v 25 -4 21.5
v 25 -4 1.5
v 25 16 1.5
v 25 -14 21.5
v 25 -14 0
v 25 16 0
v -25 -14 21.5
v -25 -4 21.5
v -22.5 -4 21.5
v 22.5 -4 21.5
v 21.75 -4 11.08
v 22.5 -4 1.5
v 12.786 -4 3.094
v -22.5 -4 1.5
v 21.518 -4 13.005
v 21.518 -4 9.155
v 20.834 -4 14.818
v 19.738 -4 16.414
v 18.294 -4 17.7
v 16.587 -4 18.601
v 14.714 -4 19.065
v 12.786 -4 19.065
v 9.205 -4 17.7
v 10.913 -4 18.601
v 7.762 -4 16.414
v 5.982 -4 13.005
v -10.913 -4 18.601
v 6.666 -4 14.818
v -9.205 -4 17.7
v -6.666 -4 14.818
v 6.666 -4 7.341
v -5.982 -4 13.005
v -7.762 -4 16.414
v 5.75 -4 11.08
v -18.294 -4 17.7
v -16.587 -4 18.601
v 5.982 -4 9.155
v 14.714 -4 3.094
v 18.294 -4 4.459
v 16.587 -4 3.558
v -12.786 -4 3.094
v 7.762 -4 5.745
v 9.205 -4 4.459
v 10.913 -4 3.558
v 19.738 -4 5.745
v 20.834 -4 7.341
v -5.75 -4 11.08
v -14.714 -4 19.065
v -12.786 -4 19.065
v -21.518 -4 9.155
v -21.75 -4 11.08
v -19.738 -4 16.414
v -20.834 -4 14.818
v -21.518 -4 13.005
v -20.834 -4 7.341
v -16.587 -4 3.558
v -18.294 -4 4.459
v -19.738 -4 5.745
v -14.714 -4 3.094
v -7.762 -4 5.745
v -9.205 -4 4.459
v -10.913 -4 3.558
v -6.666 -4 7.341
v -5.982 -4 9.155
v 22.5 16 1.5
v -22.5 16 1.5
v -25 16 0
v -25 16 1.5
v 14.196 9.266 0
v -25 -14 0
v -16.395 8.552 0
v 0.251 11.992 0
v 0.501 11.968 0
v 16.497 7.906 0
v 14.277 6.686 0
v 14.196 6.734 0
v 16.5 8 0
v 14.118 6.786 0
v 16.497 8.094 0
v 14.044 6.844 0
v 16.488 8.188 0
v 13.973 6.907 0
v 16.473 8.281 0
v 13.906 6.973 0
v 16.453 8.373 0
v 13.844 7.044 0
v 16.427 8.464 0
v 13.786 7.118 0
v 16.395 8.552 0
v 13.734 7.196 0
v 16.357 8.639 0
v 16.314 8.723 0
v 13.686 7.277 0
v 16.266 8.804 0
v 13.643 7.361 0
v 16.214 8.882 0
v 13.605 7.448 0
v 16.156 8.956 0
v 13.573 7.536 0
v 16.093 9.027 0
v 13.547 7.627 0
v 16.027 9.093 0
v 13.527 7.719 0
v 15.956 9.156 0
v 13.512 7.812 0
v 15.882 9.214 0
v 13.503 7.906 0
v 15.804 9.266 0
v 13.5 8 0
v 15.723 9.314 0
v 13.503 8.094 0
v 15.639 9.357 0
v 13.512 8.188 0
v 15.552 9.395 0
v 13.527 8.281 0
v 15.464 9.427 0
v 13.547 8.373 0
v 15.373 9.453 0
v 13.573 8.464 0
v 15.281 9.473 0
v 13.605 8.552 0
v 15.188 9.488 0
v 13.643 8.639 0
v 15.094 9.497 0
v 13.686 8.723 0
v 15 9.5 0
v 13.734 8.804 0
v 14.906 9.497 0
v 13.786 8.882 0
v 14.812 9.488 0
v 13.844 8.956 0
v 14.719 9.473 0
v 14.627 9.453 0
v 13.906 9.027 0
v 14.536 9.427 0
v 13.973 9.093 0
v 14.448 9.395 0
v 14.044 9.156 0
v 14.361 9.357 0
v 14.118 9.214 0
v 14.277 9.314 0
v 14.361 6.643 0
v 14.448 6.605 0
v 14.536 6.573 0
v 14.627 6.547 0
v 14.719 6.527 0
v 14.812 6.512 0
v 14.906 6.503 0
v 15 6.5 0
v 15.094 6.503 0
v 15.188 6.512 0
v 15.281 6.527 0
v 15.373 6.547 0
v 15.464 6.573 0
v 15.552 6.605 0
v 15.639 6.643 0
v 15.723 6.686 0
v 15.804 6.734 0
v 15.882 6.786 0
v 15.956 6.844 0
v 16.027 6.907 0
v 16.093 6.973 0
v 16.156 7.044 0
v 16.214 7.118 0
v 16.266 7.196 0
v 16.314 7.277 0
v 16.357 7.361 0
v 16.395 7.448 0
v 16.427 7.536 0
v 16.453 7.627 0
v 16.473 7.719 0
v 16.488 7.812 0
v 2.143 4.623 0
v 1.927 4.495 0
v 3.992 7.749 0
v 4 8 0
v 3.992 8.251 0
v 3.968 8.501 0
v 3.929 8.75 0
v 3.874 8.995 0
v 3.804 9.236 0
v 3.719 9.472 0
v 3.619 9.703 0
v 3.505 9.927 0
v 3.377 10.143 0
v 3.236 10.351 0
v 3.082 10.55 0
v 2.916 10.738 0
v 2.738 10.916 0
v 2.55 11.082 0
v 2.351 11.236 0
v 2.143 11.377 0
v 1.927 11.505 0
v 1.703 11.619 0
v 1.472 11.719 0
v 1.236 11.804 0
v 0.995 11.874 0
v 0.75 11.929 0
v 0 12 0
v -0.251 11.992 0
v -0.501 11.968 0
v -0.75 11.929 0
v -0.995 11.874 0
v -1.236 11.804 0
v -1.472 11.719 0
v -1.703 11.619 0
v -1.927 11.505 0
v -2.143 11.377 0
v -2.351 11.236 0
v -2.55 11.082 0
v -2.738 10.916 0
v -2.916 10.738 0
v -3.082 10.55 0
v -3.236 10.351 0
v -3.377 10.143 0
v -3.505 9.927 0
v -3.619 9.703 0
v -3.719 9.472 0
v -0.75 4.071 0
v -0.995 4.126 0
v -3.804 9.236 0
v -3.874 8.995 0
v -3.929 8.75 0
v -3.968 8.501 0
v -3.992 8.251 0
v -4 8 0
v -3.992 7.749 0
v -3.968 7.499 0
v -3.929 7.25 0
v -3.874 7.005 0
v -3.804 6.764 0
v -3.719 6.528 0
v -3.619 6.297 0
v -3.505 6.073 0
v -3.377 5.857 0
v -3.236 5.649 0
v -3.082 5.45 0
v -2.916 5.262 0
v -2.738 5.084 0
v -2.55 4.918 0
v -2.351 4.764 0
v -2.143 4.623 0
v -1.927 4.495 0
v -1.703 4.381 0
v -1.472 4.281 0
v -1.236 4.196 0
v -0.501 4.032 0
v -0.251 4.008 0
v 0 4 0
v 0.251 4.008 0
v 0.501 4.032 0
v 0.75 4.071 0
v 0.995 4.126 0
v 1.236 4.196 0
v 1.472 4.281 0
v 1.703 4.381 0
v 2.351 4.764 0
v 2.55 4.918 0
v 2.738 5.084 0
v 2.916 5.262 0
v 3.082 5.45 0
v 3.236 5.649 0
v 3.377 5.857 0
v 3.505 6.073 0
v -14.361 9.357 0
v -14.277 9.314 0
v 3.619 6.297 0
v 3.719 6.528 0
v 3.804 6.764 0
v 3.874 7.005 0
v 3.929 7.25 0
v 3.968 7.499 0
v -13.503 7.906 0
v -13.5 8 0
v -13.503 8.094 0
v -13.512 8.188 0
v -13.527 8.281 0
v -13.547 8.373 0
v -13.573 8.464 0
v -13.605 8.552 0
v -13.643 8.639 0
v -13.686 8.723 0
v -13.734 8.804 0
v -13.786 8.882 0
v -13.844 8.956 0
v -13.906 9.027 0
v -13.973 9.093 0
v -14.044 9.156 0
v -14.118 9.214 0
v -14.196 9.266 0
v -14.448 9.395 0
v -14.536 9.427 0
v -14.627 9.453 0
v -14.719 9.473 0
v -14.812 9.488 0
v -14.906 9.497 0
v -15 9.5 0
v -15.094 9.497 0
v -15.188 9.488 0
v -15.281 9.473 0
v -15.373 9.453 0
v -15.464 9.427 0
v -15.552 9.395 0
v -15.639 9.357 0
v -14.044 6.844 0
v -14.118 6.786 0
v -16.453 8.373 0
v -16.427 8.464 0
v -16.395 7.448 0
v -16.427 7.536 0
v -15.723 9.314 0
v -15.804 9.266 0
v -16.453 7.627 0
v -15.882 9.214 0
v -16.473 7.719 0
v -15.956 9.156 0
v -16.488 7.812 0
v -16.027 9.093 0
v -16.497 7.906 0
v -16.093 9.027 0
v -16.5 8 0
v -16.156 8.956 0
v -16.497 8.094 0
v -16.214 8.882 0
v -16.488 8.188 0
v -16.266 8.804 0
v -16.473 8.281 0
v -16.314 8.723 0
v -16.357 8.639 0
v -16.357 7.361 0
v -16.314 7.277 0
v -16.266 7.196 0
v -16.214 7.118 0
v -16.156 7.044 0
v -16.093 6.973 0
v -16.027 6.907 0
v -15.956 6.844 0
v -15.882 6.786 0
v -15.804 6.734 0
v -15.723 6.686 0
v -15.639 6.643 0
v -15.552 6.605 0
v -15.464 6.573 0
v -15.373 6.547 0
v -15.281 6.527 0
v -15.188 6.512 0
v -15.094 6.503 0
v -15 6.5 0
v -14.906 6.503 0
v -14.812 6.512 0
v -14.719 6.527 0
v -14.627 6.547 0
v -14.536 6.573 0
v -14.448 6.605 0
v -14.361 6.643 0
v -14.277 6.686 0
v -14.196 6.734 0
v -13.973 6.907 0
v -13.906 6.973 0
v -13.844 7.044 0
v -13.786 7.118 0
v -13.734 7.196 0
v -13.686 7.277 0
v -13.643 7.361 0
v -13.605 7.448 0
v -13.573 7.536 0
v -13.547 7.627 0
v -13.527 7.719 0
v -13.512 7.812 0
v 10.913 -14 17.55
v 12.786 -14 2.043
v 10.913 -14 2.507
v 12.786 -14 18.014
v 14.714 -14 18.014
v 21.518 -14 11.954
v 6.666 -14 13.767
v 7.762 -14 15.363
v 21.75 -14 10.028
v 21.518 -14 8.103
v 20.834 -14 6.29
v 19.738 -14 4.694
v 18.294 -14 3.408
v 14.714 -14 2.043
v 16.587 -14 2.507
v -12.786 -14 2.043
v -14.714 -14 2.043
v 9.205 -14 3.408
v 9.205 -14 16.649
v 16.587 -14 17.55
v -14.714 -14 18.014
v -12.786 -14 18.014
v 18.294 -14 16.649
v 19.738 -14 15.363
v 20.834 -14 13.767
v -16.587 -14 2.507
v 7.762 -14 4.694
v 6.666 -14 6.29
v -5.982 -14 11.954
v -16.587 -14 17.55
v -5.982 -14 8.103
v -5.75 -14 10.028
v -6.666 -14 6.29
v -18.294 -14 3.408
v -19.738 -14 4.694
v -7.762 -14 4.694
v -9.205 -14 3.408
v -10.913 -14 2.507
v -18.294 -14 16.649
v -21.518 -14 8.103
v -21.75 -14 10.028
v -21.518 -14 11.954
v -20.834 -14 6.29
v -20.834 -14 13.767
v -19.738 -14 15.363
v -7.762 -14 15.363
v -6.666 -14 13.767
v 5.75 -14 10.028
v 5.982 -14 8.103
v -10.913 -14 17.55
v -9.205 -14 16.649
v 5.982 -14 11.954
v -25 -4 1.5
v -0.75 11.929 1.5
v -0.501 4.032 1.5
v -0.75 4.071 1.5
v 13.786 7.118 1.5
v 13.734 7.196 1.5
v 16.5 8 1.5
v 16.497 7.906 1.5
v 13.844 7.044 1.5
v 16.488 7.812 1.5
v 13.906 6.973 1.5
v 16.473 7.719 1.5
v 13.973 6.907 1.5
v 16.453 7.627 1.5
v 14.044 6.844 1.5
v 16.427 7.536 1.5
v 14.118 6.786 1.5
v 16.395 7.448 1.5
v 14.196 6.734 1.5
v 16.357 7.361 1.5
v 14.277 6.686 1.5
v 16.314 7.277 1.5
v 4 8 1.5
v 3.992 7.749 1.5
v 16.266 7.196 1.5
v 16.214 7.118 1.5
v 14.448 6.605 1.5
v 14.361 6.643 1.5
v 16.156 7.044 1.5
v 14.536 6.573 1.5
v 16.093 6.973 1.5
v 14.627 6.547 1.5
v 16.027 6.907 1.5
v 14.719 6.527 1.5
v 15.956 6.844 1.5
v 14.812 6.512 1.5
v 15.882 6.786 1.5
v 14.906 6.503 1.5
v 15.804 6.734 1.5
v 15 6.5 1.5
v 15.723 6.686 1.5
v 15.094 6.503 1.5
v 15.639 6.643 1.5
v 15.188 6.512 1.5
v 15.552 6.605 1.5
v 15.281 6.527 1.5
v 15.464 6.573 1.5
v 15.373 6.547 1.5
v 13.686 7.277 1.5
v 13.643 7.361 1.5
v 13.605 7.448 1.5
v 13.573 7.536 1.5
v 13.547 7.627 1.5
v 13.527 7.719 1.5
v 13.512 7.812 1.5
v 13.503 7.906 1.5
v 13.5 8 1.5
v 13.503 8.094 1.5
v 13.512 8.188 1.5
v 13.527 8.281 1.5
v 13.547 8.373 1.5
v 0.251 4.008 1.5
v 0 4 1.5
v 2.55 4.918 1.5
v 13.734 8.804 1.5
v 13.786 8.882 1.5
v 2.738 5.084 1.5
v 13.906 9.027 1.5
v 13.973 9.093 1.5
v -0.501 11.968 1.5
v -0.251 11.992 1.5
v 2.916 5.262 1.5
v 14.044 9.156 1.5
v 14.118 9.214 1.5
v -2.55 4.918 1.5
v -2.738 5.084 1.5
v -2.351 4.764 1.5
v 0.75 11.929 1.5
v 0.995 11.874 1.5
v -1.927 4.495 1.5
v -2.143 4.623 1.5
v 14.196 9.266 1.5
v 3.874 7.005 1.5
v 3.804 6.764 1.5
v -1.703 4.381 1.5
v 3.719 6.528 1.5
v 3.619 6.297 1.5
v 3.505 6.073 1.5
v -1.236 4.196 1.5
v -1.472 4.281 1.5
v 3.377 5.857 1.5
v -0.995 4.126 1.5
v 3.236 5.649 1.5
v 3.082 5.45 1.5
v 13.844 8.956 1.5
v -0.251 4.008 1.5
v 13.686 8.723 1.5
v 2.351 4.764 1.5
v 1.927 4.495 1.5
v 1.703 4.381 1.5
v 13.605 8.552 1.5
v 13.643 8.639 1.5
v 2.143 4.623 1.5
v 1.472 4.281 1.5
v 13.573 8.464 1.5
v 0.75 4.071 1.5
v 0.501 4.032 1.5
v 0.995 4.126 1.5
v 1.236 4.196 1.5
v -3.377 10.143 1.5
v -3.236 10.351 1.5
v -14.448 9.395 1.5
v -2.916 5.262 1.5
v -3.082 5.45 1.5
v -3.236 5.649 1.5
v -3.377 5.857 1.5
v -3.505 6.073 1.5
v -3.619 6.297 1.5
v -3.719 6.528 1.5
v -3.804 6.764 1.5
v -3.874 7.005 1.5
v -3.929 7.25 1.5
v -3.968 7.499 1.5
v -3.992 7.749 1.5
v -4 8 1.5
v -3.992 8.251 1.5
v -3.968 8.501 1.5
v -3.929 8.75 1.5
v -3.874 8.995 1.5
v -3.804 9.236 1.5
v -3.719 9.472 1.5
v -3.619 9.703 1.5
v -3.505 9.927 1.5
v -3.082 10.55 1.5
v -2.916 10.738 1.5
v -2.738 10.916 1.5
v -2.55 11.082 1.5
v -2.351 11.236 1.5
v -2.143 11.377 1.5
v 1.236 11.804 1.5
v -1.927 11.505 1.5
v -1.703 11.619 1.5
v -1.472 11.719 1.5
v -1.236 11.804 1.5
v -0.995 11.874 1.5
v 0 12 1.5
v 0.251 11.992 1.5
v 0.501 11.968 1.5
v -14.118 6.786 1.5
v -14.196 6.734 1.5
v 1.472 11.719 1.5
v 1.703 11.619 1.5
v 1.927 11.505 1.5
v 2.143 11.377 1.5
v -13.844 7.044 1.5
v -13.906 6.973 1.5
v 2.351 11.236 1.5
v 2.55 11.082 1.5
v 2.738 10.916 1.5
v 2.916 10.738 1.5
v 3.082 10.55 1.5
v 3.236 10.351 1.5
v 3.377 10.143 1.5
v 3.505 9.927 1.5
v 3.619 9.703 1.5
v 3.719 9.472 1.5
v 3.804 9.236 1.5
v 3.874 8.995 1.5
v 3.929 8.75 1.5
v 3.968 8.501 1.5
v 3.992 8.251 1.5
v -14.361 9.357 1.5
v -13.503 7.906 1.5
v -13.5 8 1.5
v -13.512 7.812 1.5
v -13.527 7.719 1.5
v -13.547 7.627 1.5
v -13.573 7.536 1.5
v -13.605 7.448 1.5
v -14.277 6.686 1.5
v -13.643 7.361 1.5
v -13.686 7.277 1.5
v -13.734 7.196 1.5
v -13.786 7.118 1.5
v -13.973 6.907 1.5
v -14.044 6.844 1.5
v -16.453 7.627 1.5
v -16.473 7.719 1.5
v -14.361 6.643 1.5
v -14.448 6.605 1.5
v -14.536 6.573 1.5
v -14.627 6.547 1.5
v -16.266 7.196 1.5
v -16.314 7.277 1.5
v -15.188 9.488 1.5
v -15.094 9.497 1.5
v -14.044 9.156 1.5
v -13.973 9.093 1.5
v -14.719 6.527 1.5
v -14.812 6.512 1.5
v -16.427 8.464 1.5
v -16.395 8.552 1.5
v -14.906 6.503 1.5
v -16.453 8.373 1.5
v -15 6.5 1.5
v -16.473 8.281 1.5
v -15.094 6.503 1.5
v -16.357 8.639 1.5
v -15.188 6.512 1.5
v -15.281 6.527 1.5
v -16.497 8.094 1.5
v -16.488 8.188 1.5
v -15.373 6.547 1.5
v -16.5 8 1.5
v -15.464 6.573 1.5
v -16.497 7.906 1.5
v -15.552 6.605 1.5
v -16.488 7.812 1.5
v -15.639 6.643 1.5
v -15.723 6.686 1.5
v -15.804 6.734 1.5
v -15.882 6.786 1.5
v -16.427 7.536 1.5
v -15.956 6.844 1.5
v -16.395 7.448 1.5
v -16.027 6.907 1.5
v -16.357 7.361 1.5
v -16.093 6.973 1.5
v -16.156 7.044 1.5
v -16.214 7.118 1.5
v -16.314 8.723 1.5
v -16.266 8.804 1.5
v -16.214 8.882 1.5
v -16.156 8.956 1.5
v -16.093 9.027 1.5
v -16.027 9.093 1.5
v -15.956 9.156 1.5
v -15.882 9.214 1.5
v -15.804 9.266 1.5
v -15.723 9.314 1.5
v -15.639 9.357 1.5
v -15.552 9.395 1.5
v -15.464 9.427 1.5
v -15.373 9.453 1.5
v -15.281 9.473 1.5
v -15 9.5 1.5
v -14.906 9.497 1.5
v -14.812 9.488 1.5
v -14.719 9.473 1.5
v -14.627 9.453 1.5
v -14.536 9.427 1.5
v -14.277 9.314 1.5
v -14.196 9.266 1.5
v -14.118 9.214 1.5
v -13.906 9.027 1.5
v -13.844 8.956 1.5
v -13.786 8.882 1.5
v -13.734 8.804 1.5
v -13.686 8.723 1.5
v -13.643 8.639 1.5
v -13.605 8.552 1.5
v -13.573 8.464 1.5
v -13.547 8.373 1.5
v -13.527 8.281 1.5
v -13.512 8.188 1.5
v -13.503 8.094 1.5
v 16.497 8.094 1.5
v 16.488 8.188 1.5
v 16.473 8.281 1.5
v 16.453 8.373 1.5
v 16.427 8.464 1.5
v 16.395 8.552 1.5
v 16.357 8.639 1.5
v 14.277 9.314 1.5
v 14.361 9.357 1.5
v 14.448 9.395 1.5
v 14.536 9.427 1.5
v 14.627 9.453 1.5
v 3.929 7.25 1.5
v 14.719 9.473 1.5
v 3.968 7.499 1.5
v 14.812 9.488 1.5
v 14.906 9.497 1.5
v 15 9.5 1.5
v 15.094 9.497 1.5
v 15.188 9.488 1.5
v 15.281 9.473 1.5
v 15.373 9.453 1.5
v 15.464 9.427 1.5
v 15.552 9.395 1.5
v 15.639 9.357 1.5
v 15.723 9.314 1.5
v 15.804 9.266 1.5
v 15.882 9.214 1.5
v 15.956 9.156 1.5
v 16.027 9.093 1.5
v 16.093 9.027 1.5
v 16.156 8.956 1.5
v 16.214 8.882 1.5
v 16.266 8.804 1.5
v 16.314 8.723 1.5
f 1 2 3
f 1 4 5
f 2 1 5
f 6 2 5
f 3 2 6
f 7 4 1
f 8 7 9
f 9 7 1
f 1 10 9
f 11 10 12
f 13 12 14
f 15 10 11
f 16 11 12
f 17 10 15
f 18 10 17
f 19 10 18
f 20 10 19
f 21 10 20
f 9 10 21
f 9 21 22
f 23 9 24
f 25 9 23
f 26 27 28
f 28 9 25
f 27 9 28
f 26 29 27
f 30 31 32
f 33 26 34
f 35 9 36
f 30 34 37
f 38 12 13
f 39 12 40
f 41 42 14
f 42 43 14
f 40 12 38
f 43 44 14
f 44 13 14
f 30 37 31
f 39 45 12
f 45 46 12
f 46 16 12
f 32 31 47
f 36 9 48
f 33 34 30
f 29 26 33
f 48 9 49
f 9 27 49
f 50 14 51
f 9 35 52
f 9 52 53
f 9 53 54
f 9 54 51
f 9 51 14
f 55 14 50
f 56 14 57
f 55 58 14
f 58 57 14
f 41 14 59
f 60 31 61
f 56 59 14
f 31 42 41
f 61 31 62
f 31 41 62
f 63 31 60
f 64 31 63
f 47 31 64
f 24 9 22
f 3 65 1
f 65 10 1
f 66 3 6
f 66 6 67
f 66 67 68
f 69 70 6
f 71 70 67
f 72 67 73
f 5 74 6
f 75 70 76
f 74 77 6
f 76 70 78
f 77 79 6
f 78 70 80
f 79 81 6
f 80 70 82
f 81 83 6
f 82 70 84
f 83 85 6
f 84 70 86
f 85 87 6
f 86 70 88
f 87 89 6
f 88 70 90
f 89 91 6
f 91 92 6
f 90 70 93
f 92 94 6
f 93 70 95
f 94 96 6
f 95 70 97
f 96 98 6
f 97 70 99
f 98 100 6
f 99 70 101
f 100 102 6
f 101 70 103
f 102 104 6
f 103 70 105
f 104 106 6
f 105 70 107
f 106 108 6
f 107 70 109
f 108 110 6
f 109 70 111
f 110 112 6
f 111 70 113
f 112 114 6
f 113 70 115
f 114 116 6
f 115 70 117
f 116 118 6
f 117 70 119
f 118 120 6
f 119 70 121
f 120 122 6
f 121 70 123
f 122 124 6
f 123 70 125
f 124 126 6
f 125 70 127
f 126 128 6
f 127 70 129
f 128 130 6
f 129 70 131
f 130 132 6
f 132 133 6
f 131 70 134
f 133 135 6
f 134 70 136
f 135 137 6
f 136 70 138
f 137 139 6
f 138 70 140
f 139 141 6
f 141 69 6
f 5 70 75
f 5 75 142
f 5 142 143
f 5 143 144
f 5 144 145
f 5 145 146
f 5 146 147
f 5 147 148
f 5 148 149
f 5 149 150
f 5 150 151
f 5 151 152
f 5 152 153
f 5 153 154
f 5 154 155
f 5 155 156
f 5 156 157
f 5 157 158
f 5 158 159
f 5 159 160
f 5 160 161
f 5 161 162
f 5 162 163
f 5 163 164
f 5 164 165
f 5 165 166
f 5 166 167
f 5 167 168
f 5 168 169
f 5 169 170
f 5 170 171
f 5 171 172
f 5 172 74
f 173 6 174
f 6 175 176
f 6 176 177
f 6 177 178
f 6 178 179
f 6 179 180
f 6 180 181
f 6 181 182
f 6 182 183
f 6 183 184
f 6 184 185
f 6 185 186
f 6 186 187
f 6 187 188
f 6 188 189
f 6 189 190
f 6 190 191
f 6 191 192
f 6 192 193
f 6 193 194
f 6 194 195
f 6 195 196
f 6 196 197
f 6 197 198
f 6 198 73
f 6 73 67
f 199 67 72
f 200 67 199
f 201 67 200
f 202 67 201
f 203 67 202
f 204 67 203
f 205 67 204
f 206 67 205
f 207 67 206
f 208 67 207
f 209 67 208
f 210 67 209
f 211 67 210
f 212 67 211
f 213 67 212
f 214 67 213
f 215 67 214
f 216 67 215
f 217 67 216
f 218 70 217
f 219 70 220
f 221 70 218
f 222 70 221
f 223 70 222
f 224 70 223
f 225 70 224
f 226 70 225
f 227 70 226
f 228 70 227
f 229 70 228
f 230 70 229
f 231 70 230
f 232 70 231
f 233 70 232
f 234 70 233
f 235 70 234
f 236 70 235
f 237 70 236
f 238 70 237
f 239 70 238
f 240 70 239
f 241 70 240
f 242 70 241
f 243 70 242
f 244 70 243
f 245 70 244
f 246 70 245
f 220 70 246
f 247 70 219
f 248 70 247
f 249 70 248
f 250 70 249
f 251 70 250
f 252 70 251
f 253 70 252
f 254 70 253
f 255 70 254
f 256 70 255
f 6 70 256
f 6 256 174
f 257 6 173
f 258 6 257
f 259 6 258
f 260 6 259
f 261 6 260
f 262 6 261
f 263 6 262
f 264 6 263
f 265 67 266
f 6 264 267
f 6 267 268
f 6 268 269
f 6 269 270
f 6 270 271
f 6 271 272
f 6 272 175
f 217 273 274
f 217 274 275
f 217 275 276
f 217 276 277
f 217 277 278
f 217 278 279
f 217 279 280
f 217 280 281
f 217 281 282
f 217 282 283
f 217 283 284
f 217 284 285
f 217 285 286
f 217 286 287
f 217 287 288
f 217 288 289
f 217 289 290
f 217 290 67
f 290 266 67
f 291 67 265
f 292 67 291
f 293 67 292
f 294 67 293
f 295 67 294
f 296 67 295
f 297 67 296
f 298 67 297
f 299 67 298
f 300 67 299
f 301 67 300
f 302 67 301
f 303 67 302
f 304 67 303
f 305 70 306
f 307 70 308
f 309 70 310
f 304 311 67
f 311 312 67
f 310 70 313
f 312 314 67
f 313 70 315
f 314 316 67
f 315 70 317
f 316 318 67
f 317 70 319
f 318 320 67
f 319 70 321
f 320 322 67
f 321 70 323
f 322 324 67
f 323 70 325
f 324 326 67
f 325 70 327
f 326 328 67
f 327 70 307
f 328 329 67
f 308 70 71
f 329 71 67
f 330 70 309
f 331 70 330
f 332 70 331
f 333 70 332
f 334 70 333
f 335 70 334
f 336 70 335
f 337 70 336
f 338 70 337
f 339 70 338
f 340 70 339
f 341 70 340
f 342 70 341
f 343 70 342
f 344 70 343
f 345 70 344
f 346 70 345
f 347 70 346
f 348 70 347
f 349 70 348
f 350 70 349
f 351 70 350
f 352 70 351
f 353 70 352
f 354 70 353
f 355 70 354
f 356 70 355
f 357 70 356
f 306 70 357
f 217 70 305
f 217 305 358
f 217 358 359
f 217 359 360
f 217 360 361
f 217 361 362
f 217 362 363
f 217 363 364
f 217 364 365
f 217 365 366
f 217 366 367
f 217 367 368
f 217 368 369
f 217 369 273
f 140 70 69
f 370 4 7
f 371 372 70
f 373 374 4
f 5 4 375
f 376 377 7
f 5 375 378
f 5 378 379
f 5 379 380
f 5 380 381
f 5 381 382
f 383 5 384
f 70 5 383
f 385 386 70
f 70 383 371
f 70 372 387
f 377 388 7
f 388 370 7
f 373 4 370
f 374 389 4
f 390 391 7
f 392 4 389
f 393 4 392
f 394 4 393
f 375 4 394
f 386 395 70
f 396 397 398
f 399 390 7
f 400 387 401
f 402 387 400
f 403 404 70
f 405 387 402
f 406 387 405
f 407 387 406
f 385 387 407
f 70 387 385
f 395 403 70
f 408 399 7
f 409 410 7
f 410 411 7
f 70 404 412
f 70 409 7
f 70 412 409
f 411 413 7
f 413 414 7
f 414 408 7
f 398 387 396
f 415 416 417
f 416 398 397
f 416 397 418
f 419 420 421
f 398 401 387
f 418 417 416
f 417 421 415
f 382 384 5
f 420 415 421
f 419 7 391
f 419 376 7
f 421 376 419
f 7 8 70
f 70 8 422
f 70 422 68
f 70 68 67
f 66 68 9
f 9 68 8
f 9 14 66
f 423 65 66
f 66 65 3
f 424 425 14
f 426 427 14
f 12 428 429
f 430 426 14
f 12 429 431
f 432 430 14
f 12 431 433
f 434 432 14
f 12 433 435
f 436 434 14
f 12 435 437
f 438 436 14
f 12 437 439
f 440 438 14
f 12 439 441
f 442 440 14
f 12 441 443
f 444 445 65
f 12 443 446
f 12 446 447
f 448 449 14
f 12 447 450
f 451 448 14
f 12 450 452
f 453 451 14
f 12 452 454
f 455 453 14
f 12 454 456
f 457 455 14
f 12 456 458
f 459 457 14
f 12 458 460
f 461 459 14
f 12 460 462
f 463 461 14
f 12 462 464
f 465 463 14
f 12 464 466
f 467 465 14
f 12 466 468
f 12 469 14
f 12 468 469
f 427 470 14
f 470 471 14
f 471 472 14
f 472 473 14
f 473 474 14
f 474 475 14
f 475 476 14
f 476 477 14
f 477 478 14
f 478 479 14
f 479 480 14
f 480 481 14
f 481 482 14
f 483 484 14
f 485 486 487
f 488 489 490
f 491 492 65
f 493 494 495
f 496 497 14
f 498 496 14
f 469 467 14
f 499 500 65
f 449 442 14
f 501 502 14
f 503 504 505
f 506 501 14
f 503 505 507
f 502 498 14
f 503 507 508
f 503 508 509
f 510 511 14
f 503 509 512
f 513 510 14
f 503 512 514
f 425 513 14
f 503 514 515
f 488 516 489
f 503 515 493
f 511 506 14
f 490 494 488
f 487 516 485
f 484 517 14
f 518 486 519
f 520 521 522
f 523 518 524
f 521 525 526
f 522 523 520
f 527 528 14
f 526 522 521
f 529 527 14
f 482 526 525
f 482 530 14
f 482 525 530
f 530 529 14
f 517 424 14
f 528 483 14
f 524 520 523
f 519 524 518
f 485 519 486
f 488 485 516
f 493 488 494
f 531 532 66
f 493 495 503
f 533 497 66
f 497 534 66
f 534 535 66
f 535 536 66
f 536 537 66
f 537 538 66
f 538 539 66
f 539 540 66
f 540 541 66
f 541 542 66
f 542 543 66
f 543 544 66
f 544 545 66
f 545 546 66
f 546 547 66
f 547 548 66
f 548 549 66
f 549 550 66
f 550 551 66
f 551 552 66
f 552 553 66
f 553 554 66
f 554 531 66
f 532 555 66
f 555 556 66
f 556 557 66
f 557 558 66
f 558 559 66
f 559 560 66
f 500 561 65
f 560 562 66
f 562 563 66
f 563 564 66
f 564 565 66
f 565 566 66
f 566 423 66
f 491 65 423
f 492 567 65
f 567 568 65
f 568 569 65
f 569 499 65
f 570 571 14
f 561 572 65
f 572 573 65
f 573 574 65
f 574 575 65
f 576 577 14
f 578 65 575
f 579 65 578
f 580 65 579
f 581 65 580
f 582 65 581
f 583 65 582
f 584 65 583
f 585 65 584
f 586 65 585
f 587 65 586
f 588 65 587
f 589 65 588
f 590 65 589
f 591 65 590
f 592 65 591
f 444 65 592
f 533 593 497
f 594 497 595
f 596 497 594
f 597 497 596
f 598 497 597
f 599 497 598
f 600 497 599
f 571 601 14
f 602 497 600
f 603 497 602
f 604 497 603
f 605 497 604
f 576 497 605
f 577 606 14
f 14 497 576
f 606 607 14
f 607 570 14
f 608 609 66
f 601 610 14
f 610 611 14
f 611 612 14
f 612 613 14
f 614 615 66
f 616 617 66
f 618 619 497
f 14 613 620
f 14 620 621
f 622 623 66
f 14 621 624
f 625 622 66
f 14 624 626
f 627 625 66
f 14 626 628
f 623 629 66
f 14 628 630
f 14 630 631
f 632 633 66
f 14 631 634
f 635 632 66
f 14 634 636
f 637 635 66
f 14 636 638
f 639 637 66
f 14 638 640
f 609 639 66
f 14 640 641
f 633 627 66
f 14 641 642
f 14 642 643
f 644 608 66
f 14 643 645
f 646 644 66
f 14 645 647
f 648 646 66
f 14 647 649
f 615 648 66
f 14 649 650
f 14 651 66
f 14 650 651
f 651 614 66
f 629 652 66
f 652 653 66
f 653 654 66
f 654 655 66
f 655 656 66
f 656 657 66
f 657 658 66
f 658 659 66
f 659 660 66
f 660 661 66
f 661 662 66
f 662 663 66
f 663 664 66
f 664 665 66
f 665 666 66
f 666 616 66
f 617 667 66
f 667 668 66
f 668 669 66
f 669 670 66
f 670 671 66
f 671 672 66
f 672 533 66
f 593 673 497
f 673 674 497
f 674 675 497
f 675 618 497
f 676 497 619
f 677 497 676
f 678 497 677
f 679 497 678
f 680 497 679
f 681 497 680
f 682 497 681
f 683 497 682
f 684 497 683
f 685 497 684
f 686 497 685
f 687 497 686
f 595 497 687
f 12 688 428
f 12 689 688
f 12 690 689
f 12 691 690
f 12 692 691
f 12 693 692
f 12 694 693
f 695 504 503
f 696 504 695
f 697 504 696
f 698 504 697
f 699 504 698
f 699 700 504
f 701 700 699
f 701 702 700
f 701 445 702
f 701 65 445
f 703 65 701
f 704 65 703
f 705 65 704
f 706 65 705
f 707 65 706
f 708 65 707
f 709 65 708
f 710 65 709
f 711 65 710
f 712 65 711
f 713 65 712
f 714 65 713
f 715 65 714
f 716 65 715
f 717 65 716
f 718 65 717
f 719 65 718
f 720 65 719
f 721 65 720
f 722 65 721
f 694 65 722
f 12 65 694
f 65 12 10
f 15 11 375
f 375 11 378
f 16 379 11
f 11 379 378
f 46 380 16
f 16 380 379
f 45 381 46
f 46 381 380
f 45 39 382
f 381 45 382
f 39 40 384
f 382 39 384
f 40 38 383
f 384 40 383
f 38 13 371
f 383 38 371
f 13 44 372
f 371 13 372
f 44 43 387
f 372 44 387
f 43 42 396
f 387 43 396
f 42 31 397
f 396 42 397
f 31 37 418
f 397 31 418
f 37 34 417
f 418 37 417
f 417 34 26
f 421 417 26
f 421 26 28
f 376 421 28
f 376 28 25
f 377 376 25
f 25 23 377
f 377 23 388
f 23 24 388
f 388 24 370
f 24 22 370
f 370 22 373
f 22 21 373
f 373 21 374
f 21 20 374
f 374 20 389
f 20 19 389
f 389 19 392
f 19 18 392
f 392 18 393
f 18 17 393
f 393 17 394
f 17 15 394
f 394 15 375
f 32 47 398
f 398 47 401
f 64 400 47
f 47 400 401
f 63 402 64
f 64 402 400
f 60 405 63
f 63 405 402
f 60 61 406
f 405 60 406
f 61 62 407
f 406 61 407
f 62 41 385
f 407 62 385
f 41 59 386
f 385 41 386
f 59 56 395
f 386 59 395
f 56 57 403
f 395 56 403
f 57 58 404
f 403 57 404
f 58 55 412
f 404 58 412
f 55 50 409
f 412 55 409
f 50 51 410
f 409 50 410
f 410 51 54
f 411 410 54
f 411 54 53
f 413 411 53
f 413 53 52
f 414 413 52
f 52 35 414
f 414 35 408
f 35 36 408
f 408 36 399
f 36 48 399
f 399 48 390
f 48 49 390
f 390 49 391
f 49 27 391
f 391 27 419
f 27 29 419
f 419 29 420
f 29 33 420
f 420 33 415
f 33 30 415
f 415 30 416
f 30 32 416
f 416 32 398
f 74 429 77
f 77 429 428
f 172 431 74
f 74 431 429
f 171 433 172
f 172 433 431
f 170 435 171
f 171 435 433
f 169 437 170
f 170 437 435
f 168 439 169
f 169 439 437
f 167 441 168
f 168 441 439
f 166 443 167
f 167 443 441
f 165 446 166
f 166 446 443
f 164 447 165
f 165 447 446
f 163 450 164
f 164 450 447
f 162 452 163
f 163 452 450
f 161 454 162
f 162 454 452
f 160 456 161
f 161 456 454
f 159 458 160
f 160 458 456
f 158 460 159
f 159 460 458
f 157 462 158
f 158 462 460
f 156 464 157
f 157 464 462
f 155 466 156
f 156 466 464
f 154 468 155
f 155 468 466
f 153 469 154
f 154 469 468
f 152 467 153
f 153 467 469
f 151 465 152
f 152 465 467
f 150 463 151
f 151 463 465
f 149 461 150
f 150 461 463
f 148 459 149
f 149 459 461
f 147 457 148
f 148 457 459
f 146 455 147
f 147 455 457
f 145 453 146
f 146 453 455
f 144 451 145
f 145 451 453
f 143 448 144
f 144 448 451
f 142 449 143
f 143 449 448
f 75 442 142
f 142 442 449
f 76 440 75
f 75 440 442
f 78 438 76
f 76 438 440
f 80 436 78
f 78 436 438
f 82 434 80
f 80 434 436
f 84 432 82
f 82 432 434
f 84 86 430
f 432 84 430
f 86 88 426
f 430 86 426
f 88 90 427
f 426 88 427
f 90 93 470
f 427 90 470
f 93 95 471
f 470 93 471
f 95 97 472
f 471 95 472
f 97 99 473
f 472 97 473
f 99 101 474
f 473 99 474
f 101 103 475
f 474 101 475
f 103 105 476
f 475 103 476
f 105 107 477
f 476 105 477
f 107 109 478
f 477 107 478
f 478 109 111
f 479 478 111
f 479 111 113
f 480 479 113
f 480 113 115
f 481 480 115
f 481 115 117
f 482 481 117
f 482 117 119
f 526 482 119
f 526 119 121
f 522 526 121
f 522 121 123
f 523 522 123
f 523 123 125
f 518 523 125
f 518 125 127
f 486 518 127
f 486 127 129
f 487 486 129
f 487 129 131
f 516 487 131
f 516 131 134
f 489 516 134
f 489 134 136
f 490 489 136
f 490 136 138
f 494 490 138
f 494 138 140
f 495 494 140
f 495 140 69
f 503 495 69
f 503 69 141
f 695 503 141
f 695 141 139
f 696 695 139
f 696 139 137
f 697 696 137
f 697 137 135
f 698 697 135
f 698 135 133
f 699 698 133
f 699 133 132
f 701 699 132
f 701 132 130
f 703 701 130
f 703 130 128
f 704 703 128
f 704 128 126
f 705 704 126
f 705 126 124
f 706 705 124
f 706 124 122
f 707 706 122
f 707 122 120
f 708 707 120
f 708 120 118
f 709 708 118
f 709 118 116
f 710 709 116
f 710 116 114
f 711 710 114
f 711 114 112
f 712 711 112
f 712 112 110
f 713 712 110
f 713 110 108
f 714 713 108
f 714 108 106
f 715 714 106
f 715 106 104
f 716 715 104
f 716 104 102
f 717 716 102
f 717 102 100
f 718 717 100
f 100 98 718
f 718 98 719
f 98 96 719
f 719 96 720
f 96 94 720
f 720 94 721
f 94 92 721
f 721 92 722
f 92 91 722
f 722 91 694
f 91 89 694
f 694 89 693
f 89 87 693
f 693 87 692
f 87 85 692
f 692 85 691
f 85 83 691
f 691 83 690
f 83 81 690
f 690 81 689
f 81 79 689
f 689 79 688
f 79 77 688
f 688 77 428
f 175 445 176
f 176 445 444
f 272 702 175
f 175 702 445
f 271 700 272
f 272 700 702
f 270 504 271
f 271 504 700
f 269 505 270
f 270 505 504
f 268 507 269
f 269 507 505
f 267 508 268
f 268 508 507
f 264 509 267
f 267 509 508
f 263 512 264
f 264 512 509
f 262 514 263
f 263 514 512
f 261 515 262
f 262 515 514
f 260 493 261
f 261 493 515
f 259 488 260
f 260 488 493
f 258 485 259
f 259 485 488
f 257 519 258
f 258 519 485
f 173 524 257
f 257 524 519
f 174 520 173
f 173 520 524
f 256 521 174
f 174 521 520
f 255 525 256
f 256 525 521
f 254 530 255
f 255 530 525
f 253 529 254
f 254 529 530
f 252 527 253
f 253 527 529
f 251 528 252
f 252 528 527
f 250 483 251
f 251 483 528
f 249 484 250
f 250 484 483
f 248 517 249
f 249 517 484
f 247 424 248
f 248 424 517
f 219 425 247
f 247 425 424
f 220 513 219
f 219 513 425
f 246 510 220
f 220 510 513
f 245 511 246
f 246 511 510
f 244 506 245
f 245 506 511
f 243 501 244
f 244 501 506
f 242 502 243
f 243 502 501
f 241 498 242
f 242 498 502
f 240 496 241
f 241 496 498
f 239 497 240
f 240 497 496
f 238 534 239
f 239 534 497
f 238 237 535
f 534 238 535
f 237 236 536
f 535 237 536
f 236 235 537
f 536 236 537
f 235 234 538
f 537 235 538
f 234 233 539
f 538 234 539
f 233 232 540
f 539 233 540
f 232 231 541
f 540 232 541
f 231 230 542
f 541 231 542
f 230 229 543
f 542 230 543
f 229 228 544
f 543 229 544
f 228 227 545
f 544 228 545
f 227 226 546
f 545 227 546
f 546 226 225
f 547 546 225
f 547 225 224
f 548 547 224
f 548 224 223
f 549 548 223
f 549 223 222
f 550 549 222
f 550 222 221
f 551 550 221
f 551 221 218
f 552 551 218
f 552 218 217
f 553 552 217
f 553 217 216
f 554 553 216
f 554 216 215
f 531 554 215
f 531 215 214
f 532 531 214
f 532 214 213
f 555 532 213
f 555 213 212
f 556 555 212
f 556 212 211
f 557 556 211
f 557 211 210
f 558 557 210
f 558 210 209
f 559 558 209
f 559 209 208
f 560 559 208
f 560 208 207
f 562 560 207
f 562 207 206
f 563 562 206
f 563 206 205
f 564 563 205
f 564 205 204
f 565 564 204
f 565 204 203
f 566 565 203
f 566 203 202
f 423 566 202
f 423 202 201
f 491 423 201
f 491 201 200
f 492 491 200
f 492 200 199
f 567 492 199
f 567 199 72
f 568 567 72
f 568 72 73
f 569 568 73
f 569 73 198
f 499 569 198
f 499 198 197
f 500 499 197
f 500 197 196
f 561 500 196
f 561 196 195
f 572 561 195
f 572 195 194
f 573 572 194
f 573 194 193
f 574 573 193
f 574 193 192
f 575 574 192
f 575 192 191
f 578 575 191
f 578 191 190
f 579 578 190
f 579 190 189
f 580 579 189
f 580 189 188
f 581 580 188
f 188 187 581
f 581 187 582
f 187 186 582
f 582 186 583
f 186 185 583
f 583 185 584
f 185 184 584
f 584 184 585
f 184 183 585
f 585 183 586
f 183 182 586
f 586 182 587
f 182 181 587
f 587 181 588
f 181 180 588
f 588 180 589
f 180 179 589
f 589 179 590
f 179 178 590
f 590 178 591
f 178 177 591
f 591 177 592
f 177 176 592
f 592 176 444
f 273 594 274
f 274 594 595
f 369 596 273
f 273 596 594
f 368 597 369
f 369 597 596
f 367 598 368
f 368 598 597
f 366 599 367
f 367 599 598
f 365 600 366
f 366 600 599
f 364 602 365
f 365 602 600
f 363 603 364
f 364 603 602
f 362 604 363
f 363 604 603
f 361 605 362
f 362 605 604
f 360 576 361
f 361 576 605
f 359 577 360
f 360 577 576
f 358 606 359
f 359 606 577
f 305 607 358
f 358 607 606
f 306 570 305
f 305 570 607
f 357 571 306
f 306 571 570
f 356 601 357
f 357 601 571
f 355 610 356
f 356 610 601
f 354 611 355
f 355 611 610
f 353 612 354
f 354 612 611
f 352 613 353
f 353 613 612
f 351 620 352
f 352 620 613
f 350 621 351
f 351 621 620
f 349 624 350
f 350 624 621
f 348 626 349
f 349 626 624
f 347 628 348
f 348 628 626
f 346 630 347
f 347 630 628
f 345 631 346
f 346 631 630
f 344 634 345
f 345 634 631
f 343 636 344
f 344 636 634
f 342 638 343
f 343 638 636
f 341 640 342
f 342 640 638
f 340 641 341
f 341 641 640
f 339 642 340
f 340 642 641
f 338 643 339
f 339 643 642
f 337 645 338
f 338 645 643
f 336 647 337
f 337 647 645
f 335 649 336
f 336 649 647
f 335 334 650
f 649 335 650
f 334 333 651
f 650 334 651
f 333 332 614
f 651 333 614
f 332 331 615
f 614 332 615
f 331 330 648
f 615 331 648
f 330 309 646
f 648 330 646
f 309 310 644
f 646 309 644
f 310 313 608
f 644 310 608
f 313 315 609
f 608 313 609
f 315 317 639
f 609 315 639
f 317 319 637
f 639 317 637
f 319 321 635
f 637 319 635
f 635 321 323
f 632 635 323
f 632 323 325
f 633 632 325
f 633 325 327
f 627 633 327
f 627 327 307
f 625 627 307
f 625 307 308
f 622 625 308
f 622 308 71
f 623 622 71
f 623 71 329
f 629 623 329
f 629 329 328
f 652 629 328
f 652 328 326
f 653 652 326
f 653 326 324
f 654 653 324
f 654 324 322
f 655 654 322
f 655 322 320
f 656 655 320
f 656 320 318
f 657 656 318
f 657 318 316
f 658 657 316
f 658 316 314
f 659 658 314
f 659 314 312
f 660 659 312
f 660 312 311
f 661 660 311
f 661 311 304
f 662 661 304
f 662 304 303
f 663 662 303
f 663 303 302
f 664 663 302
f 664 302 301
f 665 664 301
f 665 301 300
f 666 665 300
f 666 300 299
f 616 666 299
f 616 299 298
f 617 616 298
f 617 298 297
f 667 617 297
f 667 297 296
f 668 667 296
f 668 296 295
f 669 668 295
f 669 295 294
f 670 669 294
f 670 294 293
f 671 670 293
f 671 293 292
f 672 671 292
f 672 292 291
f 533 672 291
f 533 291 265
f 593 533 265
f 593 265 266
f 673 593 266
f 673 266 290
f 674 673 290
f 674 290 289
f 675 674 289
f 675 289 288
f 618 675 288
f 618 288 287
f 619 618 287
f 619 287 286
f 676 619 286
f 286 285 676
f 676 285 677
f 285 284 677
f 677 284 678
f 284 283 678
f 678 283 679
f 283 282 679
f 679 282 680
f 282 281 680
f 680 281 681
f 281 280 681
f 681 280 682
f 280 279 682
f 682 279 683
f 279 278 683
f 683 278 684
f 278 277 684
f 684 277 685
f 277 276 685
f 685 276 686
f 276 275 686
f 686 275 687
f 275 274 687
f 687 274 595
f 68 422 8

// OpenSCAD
// ultrasonic sensor HC-SR04 2-500cm (use 2-200cm)
hcsr04_length=45;
hcsr04_width=20;
hcsr04_height=15;
hcsr04_trans_radius=8;
hcsr04_quartz_radius=1.5;
hcsr04_quartz_height=3;
hcsr04_quartz_distance=9;
hcsr04_board_thickness=1.5;
module hcsr04() {
 translate([0,0,-10]) rotate([-90-6,180,180]) 
	union() {
	translate([-hcsr04_length/2+hcsr04_trans_radius+hcsr04_board_thickness/2,0,hcsr04_board_thickness]) cylinder(hcsr04_height-hcsr04_board_thickness,hcsr04_trans_radius,hcsr04_trans_radius);
	translate([hcsr04_length/2-hcsr04_trans_radius-hcsr04_board_thickness/2,0,hcsr04_board_thickness]) cylinder(hcsr04_height-hcsr04_board_thickness,hcsr04_trans_radius,hcsr04_trans_radius);
	translate([0,0,hcsr04_board_thickness/2]) cube([hcsr04_length,hcsr04_width,hcsr04_board_thickness],true);
	hull() {
		translate([-hcsr04_quartz_distance/2,hcsr04_width/2-hcsr04_quartz_height,hcsr04_board_thickness]) cylinder(hcsr04_quartz_height,hcsr04_quartz_radius,hcsr04_quartz_radius,$fn=100);
		translate([hcsr04_quartz_distance/2,hcsr04_width/2-hcsr04_quartz_height,hcsr04_board_thickness]) cylinder(hcsr04_quartz_height,hcsr04_quartz_radius,hcsr04_quartz_radius,$fn=100);
	}	
  }
}


module sonar_holder() {
difference() {
	//mount horiz
	color ("green") translate([0,1,1.5/2]) cube([50,30,1.5],true);
	union() {
	//taps
	color("blue") translate([-15,8,-2]) cylinder(h=5,r=1.5,$fn=100);
	color("blue") translate([0,8,-2]) cylinder(h=5,r=4,$fn=100);
	color("blue") translate([15,8,-2]) cylinder(h=5,r=1.5,$fn=100);
 	}
}

difference() {
	//mount vert
	color ("orange") translate([0,-9,-20/2]) cube([50,10,20],true);
 	hcsr04();
}

color ("red") translate([-25,0,-20]) rotate ([0,90,0]) linear_extrude(height = 2.5) polygon([[0,-4],[-20,16],[-20,-4]]);
color ("red") translate([25-2.5,0,-20]) rotate ([0,90,0]) linear_extrude(height = 2.5) polygon([[0,-4],[-20,16],[-20,-4]]);
}

translate ([0,0,3/2]) rotate([0,180,0]) sonar_holder();
